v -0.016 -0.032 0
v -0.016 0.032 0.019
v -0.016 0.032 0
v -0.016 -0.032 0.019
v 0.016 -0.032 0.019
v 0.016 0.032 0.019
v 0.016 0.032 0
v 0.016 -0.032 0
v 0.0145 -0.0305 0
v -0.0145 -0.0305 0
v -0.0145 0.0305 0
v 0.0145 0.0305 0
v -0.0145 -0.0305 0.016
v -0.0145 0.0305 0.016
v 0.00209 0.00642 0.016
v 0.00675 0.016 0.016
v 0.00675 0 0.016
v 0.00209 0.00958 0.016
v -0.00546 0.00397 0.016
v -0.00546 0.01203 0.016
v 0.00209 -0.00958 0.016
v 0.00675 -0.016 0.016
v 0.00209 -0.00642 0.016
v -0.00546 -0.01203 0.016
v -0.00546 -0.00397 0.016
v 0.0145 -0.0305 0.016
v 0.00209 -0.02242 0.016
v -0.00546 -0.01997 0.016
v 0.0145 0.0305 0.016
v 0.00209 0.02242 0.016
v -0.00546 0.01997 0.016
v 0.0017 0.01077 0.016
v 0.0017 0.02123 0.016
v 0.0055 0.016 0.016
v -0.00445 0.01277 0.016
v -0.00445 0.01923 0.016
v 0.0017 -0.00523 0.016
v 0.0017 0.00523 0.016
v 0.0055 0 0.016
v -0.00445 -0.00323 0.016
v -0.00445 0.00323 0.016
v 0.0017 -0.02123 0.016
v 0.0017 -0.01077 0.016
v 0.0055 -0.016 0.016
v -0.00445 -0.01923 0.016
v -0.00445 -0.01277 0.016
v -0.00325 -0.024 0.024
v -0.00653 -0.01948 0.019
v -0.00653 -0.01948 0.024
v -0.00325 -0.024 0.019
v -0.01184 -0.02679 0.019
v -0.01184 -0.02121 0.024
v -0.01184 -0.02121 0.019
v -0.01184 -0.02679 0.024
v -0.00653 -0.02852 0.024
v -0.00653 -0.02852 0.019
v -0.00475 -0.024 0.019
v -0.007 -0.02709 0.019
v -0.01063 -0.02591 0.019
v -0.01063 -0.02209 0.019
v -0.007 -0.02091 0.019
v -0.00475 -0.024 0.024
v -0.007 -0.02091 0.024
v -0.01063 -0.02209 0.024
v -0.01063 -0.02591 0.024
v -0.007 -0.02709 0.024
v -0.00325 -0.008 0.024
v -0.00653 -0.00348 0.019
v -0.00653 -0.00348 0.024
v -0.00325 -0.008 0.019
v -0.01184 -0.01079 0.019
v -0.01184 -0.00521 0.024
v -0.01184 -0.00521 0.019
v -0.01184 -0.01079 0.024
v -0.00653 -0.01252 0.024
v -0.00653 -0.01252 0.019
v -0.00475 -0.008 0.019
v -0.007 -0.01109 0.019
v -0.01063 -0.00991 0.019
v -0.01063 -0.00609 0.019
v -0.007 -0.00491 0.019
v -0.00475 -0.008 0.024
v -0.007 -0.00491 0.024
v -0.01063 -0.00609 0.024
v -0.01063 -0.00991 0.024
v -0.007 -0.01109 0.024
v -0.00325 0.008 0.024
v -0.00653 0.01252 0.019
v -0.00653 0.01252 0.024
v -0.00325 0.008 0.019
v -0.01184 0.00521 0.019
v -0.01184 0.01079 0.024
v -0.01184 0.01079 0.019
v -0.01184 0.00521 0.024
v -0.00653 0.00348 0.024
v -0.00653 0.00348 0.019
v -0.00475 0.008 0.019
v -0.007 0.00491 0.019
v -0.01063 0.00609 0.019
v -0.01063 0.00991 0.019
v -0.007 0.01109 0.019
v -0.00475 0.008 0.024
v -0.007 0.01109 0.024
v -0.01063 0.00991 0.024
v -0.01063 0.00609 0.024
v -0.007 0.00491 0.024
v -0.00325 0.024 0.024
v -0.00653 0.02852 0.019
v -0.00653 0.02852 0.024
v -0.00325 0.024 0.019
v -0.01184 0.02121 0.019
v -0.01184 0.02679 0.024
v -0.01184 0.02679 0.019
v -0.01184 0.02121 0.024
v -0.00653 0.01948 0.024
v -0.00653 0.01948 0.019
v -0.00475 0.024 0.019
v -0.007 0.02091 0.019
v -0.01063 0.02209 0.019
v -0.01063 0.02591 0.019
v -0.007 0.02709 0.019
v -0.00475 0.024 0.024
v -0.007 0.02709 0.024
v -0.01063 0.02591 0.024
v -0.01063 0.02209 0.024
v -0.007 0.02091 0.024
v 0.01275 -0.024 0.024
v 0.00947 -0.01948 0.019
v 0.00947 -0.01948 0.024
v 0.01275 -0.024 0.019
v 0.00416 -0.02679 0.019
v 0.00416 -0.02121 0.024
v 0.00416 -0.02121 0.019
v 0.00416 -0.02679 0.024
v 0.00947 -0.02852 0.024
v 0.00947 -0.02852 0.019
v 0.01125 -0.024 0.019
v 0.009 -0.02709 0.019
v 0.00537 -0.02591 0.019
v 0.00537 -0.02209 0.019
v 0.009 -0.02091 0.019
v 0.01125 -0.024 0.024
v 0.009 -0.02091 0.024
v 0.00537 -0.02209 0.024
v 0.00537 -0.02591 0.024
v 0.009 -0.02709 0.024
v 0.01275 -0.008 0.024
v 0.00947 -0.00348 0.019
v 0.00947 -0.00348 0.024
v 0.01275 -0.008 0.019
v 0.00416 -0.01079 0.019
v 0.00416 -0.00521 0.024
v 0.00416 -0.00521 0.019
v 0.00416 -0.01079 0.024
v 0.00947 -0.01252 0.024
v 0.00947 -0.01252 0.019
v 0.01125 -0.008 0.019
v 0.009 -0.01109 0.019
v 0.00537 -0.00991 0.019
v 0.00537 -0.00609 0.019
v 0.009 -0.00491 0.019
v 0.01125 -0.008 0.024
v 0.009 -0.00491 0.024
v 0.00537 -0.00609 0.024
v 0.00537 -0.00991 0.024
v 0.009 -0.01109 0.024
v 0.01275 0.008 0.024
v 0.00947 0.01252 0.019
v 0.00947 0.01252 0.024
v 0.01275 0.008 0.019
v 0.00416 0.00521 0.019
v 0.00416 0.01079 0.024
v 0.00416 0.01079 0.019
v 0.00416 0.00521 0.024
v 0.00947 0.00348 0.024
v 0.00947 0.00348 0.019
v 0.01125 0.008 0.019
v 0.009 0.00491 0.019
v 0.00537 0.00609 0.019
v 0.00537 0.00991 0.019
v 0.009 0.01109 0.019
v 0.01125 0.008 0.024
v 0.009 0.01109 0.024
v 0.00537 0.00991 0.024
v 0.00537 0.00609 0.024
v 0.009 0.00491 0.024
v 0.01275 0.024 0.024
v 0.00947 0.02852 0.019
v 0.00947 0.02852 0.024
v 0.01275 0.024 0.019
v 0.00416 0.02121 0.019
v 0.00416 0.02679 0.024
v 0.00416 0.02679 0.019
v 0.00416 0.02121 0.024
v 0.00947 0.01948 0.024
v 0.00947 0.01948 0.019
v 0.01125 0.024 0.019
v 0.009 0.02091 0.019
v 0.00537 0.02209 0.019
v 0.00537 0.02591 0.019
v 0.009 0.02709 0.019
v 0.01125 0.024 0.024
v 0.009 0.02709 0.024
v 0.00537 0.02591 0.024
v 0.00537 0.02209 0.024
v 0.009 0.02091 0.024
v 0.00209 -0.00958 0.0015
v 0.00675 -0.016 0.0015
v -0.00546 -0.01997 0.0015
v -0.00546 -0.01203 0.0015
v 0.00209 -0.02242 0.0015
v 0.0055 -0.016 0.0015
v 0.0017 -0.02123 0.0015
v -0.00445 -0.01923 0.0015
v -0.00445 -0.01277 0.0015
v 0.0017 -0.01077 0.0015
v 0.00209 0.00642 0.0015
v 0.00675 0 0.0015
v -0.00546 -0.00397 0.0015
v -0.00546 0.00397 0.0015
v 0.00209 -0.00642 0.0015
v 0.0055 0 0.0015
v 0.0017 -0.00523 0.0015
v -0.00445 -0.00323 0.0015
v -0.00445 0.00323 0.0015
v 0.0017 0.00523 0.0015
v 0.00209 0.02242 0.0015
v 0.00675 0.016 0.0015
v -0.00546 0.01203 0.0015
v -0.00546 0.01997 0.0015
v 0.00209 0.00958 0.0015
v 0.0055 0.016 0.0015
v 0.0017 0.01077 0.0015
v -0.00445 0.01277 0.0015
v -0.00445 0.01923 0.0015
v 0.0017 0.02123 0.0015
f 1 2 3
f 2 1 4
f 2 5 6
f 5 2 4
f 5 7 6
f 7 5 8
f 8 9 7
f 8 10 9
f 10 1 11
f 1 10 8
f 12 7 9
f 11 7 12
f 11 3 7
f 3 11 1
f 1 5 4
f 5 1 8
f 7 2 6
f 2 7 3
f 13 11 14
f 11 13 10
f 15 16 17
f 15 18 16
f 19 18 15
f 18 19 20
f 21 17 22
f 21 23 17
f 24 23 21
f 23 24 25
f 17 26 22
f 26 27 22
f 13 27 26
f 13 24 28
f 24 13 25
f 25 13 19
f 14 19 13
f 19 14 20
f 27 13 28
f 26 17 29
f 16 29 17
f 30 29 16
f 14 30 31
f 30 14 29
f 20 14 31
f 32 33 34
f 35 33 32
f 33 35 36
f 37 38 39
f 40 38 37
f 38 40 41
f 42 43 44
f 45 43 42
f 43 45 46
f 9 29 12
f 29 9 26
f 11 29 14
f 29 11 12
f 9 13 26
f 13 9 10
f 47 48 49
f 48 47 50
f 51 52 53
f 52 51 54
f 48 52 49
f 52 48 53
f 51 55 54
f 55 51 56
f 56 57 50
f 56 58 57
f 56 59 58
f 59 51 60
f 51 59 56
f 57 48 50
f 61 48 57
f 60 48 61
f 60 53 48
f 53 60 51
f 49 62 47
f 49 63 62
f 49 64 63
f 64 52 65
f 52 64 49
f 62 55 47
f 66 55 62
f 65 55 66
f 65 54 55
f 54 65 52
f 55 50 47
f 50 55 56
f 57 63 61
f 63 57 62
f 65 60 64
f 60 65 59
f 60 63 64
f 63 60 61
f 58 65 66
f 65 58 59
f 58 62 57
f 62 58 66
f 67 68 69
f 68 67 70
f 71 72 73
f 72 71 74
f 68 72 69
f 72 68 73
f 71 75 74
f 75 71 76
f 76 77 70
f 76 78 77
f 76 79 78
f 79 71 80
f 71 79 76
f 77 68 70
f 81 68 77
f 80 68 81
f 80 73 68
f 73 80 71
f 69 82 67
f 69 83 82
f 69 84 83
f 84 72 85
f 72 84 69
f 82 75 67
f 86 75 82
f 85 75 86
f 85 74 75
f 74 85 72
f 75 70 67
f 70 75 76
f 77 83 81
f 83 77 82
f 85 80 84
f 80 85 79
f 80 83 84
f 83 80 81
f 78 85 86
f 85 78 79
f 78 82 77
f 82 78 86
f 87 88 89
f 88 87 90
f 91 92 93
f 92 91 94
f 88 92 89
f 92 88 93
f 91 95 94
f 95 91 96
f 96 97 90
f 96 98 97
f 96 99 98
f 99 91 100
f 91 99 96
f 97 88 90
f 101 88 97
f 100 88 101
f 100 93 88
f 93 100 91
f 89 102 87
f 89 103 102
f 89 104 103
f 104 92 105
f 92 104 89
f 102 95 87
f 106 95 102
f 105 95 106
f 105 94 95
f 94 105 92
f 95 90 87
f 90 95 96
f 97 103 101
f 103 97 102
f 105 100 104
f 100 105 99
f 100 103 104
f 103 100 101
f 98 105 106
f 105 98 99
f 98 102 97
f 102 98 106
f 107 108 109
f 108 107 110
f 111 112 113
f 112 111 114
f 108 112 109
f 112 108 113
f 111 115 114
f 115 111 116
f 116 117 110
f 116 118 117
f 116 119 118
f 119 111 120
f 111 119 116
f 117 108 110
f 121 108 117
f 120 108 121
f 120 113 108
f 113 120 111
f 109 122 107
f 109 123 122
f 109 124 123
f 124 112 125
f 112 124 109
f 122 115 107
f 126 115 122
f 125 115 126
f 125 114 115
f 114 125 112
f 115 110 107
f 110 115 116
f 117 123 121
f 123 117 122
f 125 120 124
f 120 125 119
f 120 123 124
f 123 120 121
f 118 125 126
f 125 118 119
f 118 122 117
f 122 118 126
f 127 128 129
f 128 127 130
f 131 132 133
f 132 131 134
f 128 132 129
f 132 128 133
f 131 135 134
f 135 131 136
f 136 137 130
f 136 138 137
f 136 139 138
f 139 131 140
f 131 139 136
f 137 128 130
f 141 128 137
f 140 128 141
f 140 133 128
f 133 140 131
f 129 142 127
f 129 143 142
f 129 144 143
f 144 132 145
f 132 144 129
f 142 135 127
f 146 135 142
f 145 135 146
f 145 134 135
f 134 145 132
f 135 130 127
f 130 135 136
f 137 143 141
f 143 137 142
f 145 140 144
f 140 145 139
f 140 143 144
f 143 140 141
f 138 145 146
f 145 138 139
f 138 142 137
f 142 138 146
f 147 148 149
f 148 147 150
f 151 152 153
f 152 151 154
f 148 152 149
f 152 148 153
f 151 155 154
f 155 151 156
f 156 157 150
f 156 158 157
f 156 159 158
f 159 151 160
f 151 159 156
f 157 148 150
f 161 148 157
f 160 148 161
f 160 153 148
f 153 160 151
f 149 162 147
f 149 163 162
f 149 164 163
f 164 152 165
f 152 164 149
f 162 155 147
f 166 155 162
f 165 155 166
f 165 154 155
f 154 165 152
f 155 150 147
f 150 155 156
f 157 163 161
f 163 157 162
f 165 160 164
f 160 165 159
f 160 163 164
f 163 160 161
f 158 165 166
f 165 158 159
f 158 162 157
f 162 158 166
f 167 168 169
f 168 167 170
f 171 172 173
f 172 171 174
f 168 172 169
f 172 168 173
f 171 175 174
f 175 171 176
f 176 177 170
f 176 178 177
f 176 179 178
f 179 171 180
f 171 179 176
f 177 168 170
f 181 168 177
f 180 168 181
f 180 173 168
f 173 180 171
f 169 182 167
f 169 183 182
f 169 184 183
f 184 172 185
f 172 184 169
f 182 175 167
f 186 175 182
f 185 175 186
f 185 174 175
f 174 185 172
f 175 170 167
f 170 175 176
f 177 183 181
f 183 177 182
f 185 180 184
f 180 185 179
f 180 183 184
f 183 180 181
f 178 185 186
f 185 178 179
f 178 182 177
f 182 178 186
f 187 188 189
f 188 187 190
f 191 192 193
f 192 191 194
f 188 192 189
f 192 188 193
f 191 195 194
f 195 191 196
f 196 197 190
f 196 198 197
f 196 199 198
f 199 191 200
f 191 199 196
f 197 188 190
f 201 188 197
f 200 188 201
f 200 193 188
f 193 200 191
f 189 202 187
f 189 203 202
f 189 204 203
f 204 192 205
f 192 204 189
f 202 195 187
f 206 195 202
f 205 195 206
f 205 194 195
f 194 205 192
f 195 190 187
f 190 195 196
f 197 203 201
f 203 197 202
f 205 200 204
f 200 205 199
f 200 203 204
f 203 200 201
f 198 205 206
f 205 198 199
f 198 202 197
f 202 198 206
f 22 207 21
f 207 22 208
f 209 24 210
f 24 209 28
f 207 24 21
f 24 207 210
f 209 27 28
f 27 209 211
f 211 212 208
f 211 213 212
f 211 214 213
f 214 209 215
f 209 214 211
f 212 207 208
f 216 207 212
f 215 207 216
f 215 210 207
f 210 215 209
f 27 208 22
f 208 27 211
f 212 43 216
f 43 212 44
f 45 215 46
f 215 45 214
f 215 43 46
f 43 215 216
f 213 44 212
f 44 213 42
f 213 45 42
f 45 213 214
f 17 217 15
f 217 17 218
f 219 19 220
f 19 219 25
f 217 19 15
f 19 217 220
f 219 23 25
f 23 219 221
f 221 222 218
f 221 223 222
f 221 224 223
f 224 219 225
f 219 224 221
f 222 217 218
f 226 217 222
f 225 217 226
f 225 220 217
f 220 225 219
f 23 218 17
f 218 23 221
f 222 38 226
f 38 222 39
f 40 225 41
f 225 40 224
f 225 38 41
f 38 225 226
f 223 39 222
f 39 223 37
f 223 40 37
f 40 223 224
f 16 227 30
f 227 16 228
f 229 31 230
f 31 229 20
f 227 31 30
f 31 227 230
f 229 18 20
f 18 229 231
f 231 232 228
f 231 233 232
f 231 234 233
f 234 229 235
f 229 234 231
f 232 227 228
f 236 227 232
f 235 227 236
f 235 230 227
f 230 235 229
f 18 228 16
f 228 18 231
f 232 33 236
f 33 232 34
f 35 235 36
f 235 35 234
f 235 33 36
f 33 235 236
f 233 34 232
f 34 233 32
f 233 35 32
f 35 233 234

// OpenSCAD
//Copyright (c) 2016, BRML
//All rights reserved.
//
//Redistribution and use in source and binary forms, with or without
//modification, are permitted provided that the following conditions are met:
//
//1. Redistributions of source code must retain the above copyright notice,
//this list of conditions and the following disclaimer.
//
//2. Redistributions in binary form must reproduce the above copyright notice,
//this list of conditions and the following disclaimer in the documentation
//and/or other materials provided with the distribution.
//
//THIS SOFTWARE IS PROVIDED BY THE COPYRIGHT HOLDERS AND CONTRIBUTORS "AS IS"
//AND ANY EXPRESS OR IMPLIED WARRANTIES, INCLUDING, BUT NOT LIMITED TO, THE
//IMPLIED WARRANTIES OF MERCHANTABILITY AND FITNESS FOR A PARTICULAR PURPOSE
//ARE DISCLAIMED. IN NO EVENT SHALL THE COPYRIGHT HOLDER OR CONTRIBUTORS BE
//LIABLE FOR ANY DIRECT, INDIRECT, INCIDENTAL, SPECIAL, EXEMPLARY, OR
//CONSEQUENTIAL DAMAGES (INCLUDING, BUT NOT LIMITED TO, PROCUREMENT OF
//SUBSTITUTE GOODS OR SERVICES; LOSS OF USE, DATA, OR PROFITS; OR BUSINESS
//INTERRUPTION) HOWEVER CAUSED AND ON ANY THEORY OF LIABILITY, WHETHER IN
//CONTRACT, STRICT LIABILITY, OR TORT (INCLUDING NEGLIGENCE OR OTHERWISE)
//ARISING IN ANY WAY OUT OF THE USE OF THIS SOFTWARE, EVEN IF ADVISED OF THE
//POSSIBILITY OF SUCH DAMAGE.


width = 0.032;  // [m]
length = 0.064;  // [m]
height = 0.019;  // [m]
thickness = 0.0015;  // [m]

nub_d_o = 0.0095;  // [m]
nub_d_i = 0.0065;
nub_h = 0.005;

hole_d_o = 0.0135;
hole_d_i = 0.011;
hole_h = 0.016;


module nubsi(d_o, d_i, h) {
    difference() {
        cylinder(h=h, d=d_o, center=false);
        translate([0, 0, -0.05])
            cylinder(h=h+0.1, d=d_i, center=false);
    }
}


translate([-width/2, -length/2, 0])
color("red")
union() {
    // base block
    difference() {
        cube([width, length, height], center=false);
        translate([thickness, thickness, -thickness-1])
            cube([width-2*thickness, length-2*thickness, height-thickness+1], center=false);
    }
    
    // nubs on top
    help_a = (width-2*nub_d_o)/4;
    help_b = help_a+nub_d_o/2;
    help_c = 2*help_a+nub_d_o;
    for (x=[help_b, help_b+help_c]) {
        for (y=[help_b : help_c : length]) {
            translate([x, y, height])
                nubsi(d_o=nub_d_o, d_i=nub_d_i, h=nub_h);
        }
    }
    
    // inner structure
    
    for (y=[-help_c, 0, help_c]) {
        translate([width/2, length/2+y, height-thickness-hole_h])
            nubsi(d_o=hole_d_o, d_i=hole_d_i, h=hole_h);
    }
}
